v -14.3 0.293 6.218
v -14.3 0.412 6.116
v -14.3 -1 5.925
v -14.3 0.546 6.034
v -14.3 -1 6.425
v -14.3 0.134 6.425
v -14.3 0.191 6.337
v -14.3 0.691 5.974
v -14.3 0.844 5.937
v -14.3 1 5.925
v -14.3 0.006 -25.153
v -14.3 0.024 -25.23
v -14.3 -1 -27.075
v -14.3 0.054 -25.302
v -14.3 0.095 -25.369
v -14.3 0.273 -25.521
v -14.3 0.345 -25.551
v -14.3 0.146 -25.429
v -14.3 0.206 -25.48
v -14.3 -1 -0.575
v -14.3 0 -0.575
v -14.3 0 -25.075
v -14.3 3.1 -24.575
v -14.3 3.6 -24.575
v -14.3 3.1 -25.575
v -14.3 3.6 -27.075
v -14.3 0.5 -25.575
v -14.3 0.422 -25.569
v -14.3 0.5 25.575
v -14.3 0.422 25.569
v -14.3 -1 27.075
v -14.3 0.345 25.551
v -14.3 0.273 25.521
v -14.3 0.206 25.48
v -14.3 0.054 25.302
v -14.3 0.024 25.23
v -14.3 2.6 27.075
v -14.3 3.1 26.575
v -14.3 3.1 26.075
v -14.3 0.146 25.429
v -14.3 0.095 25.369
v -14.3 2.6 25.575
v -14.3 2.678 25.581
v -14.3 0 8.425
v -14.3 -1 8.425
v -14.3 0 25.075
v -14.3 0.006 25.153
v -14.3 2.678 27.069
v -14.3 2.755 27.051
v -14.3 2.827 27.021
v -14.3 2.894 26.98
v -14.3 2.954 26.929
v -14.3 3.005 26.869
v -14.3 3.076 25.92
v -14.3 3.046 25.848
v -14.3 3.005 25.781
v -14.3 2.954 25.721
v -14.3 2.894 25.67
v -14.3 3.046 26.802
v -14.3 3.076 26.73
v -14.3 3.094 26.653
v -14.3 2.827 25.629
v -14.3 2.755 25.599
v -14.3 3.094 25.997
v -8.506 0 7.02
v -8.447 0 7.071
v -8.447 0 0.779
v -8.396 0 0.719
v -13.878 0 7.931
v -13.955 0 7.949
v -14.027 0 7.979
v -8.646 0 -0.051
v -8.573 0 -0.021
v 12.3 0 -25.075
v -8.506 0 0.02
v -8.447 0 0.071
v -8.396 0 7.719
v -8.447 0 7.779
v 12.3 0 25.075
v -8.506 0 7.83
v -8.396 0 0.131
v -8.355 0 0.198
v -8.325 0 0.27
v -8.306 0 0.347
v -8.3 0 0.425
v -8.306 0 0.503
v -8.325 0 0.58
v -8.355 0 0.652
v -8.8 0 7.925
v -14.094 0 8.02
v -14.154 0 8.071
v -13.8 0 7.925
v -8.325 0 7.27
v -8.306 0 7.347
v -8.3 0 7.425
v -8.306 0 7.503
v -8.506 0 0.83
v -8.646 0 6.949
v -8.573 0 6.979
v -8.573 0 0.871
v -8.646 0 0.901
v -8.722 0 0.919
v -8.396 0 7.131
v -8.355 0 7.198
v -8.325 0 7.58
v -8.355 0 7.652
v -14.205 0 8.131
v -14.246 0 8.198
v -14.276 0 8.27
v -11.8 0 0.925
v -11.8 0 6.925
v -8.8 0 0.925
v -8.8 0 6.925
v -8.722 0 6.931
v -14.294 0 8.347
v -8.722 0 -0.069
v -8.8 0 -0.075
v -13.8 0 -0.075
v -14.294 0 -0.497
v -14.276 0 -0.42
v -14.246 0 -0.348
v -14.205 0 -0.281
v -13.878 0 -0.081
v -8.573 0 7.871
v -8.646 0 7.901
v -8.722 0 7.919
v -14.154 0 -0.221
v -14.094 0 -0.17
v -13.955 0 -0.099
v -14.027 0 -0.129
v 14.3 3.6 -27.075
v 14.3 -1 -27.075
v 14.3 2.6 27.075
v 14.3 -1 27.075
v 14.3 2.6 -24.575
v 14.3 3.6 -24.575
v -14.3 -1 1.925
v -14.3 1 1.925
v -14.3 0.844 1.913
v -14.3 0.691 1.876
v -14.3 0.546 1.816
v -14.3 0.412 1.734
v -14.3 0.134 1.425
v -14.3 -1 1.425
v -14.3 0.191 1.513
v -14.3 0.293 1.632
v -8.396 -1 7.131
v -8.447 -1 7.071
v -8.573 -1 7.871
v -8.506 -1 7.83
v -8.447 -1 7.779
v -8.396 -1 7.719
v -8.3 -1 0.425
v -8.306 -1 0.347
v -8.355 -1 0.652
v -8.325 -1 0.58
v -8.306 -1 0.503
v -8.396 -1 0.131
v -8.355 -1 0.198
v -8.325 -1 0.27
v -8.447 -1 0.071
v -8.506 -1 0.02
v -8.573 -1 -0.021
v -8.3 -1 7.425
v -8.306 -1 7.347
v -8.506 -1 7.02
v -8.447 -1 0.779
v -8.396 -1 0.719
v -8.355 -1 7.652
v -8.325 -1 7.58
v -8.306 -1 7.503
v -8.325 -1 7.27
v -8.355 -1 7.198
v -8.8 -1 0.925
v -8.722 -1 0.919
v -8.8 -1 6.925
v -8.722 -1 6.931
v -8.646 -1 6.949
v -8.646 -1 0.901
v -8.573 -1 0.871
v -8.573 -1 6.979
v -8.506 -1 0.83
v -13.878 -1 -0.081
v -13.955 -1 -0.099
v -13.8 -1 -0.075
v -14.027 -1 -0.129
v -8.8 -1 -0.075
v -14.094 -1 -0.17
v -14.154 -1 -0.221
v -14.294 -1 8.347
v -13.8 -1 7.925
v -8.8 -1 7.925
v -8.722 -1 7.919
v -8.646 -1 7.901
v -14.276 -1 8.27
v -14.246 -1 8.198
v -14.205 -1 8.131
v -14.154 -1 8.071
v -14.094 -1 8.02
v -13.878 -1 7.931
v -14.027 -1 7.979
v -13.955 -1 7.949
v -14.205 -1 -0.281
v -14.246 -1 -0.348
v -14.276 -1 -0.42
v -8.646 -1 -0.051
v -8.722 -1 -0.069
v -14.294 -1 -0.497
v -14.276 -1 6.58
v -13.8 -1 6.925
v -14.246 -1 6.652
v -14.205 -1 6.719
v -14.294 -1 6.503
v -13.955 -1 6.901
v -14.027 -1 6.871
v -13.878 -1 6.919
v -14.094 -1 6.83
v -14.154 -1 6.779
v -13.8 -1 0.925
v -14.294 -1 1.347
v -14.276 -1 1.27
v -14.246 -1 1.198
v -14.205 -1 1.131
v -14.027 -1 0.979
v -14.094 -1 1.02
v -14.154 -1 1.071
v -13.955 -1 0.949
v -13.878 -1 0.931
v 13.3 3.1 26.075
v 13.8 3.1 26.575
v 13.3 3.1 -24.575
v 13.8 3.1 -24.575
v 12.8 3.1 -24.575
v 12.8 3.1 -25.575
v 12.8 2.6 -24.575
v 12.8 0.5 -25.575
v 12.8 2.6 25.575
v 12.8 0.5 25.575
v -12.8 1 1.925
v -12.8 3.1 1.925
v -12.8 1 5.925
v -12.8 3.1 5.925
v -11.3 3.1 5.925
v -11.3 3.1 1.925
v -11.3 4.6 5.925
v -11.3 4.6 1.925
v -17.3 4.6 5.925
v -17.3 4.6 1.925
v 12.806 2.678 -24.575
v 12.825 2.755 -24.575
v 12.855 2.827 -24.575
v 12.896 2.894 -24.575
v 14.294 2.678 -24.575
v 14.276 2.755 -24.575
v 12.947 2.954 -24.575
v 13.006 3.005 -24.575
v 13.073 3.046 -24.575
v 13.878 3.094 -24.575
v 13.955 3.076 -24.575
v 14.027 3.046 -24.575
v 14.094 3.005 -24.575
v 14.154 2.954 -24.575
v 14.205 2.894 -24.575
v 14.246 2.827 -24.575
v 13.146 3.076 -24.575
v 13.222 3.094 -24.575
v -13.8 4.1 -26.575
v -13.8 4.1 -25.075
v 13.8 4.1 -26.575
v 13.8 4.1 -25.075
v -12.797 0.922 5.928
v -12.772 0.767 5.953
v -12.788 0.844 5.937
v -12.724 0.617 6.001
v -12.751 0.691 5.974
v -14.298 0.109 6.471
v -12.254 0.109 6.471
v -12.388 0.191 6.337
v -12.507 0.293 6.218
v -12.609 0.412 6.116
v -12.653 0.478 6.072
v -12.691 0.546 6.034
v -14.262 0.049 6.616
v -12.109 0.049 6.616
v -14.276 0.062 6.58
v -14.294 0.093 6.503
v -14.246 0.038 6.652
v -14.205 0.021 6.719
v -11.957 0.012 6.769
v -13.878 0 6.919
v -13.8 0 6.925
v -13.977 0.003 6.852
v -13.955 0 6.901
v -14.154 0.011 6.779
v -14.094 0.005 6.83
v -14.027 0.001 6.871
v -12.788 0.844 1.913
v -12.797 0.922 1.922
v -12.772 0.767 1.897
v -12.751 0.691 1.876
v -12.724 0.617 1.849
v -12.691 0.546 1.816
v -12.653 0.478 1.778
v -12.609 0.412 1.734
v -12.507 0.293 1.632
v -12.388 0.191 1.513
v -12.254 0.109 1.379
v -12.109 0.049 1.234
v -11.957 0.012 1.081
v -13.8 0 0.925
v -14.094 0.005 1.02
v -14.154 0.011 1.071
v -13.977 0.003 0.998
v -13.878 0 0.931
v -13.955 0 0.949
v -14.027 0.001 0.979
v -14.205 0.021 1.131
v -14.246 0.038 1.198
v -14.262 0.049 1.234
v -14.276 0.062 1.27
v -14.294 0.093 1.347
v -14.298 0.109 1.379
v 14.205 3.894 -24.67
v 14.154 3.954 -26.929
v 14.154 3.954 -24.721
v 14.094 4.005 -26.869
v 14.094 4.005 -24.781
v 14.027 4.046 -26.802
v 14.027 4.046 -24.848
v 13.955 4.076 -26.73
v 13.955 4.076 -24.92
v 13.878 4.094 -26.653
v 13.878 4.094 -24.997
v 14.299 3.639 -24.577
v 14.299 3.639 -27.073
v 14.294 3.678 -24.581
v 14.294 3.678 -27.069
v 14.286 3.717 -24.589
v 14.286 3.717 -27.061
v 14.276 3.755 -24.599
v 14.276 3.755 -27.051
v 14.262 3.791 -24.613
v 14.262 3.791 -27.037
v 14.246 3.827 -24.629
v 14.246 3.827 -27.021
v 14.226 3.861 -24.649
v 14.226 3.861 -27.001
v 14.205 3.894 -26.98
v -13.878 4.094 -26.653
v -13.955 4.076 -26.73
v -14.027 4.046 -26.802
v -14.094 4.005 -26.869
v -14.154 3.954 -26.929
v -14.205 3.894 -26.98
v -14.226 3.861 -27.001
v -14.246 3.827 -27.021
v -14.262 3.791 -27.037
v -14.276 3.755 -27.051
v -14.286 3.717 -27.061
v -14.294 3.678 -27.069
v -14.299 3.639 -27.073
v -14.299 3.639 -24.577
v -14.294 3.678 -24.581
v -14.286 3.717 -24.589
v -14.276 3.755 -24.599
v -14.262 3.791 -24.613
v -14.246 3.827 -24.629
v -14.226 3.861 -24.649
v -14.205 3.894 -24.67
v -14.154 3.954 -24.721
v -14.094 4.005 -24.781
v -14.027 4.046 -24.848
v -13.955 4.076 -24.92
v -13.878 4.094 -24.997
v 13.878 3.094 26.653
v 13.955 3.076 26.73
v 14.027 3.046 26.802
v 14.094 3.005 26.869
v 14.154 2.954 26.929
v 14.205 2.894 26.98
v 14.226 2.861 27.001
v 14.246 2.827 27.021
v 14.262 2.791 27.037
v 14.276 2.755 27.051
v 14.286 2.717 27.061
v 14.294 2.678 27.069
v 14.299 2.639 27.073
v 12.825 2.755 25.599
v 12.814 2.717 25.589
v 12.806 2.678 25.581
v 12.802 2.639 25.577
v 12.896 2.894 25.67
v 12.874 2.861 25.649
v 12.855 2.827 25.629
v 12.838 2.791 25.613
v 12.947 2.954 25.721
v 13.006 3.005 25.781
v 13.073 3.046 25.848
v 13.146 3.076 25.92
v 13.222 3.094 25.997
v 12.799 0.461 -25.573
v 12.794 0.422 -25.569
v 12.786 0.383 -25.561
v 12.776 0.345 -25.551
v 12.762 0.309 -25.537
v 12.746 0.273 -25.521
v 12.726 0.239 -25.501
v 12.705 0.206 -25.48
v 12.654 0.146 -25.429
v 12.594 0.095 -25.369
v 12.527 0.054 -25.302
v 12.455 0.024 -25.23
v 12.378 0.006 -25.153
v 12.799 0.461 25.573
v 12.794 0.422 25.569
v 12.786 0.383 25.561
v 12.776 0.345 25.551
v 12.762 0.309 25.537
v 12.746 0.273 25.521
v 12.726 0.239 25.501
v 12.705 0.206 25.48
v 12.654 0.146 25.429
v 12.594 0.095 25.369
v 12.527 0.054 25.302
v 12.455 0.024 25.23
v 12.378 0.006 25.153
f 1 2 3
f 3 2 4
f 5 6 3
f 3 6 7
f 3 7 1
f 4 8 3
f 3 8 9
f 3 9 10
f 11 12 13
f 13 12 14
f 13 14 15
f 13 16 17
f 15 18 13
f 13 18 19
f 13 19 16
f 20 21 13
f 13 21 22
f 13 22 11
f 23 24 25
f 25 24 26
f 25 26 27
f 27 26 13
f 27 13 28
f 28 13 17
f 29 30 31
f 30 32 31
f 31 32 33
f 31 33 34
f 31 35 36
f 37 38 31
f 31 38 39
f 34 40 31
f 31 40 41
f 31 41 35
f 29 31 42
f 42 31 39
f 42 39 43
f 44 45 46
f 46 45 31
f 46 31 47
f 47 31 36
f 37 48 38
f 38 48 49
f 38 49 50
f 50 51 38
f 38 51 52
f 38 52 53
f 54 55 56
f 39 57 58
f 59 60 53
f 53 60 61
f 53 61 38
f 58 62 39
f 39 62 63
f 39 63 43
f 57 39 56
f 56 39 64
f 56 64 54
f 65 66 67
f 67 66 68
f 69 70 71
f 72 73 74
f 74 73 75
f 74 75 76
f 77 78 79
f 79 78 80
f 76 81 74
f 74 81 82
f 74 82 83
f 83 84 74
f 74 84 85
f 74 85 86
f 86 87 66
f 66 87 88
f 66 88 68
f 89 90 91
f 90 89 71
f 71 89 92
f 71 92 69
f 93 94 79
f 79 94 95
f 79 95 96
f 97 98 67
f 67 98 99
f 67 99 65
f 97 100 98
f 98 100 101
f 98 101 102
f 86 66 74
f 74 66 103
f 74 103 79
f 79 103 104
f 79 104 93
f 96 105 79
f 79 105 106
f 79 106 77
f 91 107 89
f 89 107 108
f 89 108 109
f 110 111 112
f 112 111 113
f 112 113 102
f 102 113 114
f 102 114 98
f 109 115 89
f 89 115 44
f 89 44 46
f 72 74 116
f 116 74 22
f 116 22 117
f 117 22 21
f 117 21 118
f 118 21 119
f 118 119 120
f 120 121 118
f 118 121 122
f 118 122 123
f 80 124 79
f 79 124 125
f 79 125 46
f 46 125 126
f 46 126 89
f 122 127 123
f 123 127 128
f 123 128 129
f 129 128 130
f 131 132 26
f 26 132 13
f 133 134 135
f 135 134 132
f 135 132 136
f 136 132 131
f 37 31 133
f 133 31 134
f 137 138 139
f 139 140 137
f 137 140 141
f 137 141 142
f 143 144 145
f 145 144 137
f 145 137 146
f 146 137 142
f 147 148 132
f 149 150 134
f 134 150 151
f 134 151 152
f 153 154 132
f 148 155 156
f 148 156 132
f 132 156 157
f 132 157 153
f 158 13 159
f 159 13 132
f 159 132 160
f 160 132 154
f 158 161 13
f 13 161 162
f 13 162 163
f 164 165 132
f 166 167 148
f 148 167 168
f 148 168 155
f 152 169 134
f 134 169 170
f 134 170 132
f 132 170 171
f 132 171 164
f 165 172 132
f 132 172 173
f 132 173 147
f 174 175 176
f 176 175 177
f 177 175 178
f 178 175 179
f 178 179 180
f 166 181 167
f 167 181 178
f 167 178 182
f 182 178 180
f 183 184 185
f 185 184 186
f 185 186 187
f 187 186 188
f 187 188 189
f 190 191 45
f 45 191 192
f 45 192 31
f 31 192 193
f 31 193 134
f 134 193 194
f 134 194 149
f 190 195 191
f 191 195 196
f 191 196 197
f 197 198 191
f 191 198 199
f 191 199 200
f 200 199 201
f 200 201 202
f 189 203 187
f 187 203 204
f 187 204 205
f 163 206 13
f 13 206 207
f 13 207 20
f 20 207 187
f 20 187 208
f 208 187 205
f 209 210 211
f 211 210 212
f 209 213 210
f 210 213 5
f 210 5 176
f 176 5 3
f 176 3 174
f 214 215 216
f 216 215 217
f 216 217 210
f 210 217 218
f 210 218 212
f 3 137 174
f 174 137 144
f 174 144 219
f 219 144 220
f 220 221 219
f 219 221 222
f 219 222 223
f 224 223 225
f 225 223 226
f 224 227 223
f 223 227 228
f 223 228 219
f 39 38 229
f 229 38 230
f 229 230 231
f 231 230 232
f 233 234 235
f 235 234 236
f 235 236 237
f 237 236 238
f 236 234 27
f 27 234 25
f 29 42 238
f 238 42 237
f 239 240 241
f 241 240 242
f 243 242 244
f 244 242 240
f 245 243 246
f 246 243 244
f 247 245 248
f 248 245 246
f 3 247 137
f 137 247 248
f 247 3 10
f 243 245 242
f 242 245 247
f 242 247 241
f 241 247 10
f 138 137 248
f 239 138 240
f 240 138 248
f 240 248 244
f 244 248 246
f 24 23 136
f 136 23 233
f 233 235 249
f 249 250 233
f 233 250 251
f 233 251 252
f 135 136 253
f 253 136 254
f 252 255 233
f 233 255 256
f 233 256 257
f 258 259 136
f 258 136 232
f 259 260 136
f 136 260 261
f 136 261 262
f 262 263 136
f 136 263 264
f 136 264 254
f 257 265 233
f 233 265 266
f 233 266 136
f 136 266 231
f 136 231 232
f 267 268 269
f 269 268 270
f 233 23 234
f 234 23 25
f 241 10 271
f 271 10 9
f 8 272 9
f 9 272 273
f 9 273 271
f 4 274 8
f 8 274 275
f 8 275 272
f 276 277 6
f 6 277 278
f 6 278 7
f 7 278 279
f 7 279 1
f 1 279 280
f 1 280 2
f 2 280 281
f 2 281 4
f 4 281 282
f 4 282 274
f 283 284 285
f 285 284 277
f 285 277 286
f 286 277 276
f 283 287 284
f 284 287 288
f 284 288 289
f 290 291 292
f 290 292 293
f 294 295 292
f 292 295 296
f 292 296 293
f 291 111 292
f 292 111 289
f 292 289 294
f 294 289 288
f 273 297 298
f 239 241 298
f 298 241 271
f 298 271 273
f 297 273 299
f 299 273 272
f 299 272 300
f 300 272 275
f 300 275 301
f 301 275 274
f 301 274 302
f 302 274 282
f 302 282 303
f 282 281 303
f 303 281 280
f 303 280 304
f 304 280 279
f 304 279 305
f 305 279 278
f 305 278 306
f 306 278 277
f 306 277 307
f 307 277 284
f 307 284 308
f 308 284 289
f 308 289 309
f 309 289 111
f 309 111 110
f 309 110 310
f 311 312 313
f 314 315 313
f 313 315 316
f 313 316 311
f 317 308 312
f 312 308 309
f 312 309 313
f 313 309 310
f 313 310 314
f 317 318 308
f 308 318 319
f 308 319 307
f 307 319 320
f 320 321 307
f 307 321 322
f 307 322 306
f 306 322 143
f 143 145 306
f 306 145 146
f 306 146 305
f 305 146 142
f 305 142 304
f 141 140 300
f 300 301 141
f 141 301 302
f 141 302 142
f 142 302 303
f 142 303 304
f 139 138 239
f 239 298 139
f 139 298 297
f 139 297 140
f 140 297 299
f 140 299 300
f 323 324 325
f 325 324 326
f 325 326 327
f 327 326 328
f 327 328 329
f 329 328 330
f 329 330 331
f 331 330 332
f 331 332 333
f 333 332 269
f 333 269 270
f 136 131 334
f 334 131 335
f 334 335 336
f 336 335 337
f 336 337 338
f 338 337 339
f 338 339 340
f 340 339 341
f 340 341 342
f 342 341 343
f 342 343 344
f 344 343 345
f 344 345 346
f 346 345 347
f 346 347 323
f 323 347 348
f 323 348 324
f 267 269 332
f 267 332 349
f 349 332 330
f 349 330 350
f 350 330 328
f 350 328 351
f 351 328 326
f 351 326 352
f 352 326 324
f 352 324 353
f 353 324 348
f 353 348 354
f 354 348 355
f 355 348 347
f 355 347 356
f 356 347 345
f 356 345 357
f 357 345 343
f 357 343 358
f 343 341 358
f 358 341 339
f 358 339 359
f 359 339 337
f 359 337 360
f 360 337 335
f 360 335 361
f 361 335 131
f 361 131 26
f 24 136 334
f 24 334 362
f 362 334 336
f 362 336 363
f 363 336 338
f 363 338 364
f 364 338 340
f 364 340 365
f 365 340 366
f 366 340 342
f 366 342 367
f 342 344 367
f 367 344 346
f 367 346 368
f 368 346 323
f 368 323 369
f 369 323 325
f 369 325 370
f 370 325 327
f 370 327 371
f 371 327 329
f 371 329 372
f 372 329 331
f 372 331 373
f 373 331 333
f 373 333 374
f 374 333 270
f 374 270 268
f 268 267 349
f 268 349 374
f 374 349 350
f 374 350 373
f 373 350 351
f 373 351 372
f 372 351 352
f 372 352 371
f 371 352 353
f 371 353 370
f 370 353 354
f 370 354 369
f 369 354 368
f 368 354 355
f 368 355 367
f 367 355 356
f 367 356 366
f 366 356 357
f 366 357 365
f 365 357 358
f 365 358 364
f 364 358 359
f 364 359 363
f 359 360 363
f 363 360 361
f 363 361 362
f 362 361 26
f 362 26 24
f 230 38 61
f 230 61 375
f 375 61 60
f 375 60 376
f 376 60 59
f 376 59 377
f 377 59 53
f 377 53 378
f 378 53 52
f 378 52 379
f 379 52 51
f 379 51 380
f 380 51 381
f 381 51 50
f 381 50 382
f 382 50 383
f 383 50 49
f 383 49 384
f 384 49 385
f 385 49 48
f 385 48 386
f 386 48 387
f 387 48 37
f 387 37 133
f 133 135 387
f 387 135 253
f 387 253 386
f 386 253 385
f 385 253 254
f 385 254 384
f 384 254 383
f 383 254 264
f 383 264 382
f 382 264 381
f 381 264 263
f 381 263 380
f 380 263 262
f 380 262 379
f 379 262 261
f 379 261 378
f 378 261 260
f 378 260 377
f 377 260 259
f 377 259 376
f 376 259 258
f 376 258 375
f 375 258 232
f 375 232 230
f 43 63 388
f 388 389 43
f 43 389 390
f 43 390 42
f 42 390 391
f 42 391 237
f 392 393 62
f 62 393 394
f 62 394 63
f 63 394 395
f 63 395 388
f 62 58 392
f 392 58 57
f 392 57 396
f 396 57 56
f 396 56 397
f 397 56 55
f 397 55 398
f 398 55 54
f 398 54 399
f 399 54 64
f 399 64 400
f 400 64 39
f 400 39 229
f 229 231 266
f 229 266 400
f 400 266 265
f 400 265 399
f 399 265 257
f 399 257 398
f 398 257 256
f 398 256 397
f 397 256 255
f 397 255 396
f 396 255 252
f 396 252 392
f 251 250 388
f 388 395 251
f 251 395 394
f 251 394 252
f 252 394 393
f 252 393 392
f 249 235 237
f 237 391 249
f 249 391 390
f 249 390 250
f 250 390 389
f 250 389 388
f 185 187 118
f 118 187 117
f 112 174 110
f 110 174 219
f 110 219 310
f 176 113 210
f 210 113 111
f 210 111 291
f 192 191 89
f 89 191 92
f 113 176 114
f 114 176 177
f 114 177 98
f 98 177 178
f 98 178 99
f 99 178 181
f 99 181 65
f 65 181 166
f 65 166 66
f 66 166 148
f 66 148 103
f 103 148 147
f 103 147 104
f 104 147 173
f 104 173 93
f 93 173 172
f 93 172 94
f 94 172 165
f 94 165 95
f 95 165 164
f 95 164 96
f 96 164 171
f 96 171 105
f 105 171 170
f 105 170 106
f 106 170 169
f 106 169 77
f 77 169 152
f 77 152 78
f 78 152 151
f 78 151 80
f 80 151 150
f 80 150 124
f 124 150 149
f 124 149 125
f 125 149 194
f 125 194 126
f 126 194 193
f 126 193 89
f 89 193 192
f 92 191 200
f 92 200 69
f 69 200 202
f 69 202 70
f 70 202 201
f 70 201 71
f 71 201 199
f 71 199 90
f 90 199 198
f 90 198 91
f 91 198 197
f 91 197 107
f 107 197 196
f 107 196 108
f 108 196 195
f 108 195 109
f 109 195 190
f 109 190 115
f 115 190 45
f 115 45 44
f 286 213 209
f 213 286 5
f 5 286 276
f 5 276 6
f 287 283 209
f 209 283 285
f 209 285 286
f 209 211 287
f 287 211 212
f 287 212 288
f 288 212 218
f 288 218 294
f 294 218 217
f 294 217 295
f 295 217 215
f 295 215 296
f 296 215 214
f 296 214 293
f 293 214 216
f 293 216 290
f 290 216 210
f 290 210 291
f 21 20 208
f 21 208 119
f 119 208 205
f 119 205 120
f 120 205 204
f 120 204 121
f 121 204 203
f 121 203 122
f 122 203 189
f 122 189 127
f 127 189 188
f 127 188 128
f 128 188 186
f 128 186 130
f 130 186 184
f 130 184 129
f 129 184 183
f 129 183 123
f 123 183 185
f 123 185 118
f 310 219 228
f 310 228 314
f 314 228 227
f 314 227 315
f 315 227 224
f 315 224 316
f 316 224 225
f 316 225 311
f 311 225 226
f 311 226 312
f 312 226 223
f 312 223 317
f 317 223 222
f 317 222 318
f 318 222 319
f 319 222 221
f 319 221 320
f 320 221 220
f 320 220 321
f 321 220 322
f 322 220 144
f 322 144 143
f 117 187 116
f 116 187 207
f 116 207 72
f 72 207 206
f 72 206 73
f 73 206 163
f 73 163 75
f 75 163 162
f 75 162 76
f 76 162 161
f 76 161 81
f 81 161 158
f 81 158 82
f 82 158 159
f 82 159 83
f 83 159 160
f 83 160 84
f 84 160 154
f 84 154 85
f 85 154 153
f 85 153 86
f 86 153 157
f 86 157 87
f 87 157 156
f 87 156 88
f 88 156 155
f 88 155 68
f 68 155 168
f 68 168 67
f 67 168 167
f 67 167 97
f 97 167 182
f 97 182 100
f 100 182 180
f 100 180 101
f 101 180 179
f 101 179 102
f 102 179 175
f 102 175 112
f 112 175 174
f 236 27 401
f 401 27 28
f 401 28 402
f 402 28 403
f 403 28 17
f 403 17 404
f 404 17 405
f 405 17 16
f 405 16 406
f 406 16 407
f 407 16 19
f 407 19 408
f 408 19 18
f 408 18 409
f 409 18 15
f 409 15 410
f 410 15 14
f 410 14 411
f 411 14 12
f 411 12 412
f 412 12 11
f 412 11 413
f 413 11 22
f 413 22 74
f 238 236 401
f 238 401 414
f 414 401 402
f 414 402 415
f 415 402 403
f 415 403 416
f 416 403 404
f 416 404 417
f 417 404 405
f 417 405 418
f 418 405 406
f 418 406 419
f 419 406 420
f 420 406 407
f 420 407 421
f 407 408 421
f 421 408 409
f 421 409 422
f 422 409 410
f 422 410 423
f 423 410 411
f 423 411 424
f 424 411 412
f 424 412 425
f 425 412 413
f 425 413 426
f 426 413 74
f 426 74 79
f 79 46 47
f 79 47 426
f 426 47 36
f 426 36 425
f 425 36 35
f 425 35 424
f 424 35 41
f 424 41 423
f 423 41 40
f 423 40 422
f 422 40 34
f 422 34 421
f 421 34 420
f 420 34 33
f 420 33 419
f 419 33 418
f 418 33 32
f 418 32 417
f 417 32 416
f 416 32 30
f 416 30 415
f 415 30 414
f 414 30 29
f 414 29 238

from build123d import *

# Parameters (mm, degrees)
SKETCH2_W           = 28.600197044
SKETCH2_H           = 54.15
BOSS_EXTRUDE1_DEPTH = 1
SKETCH2_3_W         = 28.600197044
SKETCH2_3_H         = 54.15
SKETCH2_3_W_2       = 25.600197044
SKETCH2_3_H_2       = 51.15
BOSS_EXTRUDE2_DEPTH = 3.1
SKETCH3_W           = 25.88588247
SKETCH3_H           = 51.15
CUT_EXTRUDE1_DEPTH  = 3.1
BOSS_EXTRUDE3_DEPTH = 4
SKETCH5_W           = 28.600197044
SKETCH5_H           = 2.5
BOSS_EXTRUDE4_DEPTH = 1
FILLET1_R           = 1
FILLET2_R           = 0.5
SKETCH7_W           = 6
SKETCH7_H           = 1
CUT_EXTRUDE2_DEPTH  = 1
FILLET3_R           = 0.5
FILLET4_R           = 0.5


with BuildPart() as part:
    # Sketch2 → Boss-Extrude1 (new body)
    with BuildSketch(Plane(origin=(0, 0, 0), x_dir=(1, 0, 0), z_dir=(0, 1, 0))):
        Rectangle(SKETCH2_W, SKETCH2_H)
    extrude(amount=-BOSS_EXTRUDE1_DEPTH)

    # Sketch2<3> → Boss-Extrude2 (add)
    with BuildSketch(Plane(origin=(0, 0, 0), x_dir=(1, 0, 0), z_dir=(0, 1, 0))):
        Rectangle(SKETCH2_3_W, SKETCH2_3_H)
        Rectangle(SKETCH2_3_W_2, SKETCH2_3_H_2, mode=Mode.SUBTRACT)
    extrude(amount=BOSS_EXTRUDE2_DEPTH)

    # Sketch3 → Cut-Extrude1 (cut)
    with BuildSketch(Plane(origin=(0, 3.1, 0), x_dir=(1, 0, 0), z_dir=(0, 1, 0))):
        with Locations((-6.642842713, 0)):
            Rectangle(SKETCH3_W, SKETCH3_H)
    extrude(amount=-CUT_EXTRUDE1_DEPTH, mode=Mode.SUBTRACT)

    # Sketch4 → Boss-Extrude3 (add)
    with BuildSketch(Plane.XY.offset(1.925)):
        Polygon((-14.300098522, 0), (-12.800098522, 0), (-12.800098522, 3.1), (-11.300098522, 3.1), (-11.300098522, 4.6), (-17.300098522, 4.6), (-14.300098522, -1), align=None)
    extrude(amount=BOSS_EXTRUDE3_DEPTH)

    # Sketch5 → Boss-Extrude4 (add)
    with BuildSketch(Plane(origin=(0, 3.1, 0), x_dir=(1, 0, 0), z_dir=(0, 1, 0))):
        with Locations((0, 25.825)):
            Rectangle(SKETCH5_W, SKETCH5_H)
    extrude(amount=BOSS_EXTRUDE4_DEPTH)

    # Fillet1
    fillet1_edges = [part.edges().sort_by_distance(p)[0] for p in [
        (-13.550098522, 0, 1.925),
        (-12.800098522, 0, 3.925),
        (-13.550098522, 0, 5.925),
    ]]
    fillet(fillet1_edges, radius=FILLET1_R)

    # Fillet2
    fillet2_edges = [part.edges().sort_by_distance(p)[0] for p in [
        (14.300098522, 3.1, 1.25),
        (0, 3.1, 27.075),
        (12.800098522, 3.1, 0.5),
        (-0.75, 3.1, 25.575),
        (-14.300098522, 4.1, -25.825),
        (0, 4.1, -24.575),
        (14.300098522, 4.1, -25.825),
        (0, 4.1, -27.075),
    ]]
    fillet(fillet2_edges, radius=FILLET2_R)

    # Sketch7 → Cut-Extrude2 (cut)
    with BuildSketch(Plane(origin=(0, 0, 0), x_dir=(1, 0, 0), z_dir=(0, 1, 0))):
        with Locations((-11.300098522, -0.425)):
            Rectangle(SKETCH7_W, SKETCH7_H)
        with Locations((-11.300098522, -7.425)):
            Rectangle(SKETCH7_W, SKETCH7_H)
    extrude(amount=-CUT_EXTRUDE2_DEPTH, mode=Mode.SUBTRACT)

    # Fillet3
    fillet3_edges = [part.edges().sort_by_distance(p)[0] for p in [
        (-14.300098522, -0.5, 0.925),
        (-14.300098522, -0.5, -0.075),
        (-8.300098522, -0.5, -0.075),
        (-8.300098522, -0.5, 0.925),
        (-14.300098522, -0.5, 7.925),
        (-14.300098522, -0.5, 6.925),
        (-8.300098522, -0.5, 6.925),
        (-8.300098522, -0.5, 7.925),
    ]]
    fillet(fillet3_edges, radius=FILLET3_R - 0.0001)  # a hair under: the kernel refuses the full size

    # Fillet4
    fillet4_edges = [part.edges().sort_by_distance(p)[0] for p in [
        (12.800098522, 0, 0),
        (-0.75, 0, -25.575),
        (-0.75, 0, 25.575),
    ]]
    fillet(fillet4_edges, radius=FILLET4_R)


solid = part.part
